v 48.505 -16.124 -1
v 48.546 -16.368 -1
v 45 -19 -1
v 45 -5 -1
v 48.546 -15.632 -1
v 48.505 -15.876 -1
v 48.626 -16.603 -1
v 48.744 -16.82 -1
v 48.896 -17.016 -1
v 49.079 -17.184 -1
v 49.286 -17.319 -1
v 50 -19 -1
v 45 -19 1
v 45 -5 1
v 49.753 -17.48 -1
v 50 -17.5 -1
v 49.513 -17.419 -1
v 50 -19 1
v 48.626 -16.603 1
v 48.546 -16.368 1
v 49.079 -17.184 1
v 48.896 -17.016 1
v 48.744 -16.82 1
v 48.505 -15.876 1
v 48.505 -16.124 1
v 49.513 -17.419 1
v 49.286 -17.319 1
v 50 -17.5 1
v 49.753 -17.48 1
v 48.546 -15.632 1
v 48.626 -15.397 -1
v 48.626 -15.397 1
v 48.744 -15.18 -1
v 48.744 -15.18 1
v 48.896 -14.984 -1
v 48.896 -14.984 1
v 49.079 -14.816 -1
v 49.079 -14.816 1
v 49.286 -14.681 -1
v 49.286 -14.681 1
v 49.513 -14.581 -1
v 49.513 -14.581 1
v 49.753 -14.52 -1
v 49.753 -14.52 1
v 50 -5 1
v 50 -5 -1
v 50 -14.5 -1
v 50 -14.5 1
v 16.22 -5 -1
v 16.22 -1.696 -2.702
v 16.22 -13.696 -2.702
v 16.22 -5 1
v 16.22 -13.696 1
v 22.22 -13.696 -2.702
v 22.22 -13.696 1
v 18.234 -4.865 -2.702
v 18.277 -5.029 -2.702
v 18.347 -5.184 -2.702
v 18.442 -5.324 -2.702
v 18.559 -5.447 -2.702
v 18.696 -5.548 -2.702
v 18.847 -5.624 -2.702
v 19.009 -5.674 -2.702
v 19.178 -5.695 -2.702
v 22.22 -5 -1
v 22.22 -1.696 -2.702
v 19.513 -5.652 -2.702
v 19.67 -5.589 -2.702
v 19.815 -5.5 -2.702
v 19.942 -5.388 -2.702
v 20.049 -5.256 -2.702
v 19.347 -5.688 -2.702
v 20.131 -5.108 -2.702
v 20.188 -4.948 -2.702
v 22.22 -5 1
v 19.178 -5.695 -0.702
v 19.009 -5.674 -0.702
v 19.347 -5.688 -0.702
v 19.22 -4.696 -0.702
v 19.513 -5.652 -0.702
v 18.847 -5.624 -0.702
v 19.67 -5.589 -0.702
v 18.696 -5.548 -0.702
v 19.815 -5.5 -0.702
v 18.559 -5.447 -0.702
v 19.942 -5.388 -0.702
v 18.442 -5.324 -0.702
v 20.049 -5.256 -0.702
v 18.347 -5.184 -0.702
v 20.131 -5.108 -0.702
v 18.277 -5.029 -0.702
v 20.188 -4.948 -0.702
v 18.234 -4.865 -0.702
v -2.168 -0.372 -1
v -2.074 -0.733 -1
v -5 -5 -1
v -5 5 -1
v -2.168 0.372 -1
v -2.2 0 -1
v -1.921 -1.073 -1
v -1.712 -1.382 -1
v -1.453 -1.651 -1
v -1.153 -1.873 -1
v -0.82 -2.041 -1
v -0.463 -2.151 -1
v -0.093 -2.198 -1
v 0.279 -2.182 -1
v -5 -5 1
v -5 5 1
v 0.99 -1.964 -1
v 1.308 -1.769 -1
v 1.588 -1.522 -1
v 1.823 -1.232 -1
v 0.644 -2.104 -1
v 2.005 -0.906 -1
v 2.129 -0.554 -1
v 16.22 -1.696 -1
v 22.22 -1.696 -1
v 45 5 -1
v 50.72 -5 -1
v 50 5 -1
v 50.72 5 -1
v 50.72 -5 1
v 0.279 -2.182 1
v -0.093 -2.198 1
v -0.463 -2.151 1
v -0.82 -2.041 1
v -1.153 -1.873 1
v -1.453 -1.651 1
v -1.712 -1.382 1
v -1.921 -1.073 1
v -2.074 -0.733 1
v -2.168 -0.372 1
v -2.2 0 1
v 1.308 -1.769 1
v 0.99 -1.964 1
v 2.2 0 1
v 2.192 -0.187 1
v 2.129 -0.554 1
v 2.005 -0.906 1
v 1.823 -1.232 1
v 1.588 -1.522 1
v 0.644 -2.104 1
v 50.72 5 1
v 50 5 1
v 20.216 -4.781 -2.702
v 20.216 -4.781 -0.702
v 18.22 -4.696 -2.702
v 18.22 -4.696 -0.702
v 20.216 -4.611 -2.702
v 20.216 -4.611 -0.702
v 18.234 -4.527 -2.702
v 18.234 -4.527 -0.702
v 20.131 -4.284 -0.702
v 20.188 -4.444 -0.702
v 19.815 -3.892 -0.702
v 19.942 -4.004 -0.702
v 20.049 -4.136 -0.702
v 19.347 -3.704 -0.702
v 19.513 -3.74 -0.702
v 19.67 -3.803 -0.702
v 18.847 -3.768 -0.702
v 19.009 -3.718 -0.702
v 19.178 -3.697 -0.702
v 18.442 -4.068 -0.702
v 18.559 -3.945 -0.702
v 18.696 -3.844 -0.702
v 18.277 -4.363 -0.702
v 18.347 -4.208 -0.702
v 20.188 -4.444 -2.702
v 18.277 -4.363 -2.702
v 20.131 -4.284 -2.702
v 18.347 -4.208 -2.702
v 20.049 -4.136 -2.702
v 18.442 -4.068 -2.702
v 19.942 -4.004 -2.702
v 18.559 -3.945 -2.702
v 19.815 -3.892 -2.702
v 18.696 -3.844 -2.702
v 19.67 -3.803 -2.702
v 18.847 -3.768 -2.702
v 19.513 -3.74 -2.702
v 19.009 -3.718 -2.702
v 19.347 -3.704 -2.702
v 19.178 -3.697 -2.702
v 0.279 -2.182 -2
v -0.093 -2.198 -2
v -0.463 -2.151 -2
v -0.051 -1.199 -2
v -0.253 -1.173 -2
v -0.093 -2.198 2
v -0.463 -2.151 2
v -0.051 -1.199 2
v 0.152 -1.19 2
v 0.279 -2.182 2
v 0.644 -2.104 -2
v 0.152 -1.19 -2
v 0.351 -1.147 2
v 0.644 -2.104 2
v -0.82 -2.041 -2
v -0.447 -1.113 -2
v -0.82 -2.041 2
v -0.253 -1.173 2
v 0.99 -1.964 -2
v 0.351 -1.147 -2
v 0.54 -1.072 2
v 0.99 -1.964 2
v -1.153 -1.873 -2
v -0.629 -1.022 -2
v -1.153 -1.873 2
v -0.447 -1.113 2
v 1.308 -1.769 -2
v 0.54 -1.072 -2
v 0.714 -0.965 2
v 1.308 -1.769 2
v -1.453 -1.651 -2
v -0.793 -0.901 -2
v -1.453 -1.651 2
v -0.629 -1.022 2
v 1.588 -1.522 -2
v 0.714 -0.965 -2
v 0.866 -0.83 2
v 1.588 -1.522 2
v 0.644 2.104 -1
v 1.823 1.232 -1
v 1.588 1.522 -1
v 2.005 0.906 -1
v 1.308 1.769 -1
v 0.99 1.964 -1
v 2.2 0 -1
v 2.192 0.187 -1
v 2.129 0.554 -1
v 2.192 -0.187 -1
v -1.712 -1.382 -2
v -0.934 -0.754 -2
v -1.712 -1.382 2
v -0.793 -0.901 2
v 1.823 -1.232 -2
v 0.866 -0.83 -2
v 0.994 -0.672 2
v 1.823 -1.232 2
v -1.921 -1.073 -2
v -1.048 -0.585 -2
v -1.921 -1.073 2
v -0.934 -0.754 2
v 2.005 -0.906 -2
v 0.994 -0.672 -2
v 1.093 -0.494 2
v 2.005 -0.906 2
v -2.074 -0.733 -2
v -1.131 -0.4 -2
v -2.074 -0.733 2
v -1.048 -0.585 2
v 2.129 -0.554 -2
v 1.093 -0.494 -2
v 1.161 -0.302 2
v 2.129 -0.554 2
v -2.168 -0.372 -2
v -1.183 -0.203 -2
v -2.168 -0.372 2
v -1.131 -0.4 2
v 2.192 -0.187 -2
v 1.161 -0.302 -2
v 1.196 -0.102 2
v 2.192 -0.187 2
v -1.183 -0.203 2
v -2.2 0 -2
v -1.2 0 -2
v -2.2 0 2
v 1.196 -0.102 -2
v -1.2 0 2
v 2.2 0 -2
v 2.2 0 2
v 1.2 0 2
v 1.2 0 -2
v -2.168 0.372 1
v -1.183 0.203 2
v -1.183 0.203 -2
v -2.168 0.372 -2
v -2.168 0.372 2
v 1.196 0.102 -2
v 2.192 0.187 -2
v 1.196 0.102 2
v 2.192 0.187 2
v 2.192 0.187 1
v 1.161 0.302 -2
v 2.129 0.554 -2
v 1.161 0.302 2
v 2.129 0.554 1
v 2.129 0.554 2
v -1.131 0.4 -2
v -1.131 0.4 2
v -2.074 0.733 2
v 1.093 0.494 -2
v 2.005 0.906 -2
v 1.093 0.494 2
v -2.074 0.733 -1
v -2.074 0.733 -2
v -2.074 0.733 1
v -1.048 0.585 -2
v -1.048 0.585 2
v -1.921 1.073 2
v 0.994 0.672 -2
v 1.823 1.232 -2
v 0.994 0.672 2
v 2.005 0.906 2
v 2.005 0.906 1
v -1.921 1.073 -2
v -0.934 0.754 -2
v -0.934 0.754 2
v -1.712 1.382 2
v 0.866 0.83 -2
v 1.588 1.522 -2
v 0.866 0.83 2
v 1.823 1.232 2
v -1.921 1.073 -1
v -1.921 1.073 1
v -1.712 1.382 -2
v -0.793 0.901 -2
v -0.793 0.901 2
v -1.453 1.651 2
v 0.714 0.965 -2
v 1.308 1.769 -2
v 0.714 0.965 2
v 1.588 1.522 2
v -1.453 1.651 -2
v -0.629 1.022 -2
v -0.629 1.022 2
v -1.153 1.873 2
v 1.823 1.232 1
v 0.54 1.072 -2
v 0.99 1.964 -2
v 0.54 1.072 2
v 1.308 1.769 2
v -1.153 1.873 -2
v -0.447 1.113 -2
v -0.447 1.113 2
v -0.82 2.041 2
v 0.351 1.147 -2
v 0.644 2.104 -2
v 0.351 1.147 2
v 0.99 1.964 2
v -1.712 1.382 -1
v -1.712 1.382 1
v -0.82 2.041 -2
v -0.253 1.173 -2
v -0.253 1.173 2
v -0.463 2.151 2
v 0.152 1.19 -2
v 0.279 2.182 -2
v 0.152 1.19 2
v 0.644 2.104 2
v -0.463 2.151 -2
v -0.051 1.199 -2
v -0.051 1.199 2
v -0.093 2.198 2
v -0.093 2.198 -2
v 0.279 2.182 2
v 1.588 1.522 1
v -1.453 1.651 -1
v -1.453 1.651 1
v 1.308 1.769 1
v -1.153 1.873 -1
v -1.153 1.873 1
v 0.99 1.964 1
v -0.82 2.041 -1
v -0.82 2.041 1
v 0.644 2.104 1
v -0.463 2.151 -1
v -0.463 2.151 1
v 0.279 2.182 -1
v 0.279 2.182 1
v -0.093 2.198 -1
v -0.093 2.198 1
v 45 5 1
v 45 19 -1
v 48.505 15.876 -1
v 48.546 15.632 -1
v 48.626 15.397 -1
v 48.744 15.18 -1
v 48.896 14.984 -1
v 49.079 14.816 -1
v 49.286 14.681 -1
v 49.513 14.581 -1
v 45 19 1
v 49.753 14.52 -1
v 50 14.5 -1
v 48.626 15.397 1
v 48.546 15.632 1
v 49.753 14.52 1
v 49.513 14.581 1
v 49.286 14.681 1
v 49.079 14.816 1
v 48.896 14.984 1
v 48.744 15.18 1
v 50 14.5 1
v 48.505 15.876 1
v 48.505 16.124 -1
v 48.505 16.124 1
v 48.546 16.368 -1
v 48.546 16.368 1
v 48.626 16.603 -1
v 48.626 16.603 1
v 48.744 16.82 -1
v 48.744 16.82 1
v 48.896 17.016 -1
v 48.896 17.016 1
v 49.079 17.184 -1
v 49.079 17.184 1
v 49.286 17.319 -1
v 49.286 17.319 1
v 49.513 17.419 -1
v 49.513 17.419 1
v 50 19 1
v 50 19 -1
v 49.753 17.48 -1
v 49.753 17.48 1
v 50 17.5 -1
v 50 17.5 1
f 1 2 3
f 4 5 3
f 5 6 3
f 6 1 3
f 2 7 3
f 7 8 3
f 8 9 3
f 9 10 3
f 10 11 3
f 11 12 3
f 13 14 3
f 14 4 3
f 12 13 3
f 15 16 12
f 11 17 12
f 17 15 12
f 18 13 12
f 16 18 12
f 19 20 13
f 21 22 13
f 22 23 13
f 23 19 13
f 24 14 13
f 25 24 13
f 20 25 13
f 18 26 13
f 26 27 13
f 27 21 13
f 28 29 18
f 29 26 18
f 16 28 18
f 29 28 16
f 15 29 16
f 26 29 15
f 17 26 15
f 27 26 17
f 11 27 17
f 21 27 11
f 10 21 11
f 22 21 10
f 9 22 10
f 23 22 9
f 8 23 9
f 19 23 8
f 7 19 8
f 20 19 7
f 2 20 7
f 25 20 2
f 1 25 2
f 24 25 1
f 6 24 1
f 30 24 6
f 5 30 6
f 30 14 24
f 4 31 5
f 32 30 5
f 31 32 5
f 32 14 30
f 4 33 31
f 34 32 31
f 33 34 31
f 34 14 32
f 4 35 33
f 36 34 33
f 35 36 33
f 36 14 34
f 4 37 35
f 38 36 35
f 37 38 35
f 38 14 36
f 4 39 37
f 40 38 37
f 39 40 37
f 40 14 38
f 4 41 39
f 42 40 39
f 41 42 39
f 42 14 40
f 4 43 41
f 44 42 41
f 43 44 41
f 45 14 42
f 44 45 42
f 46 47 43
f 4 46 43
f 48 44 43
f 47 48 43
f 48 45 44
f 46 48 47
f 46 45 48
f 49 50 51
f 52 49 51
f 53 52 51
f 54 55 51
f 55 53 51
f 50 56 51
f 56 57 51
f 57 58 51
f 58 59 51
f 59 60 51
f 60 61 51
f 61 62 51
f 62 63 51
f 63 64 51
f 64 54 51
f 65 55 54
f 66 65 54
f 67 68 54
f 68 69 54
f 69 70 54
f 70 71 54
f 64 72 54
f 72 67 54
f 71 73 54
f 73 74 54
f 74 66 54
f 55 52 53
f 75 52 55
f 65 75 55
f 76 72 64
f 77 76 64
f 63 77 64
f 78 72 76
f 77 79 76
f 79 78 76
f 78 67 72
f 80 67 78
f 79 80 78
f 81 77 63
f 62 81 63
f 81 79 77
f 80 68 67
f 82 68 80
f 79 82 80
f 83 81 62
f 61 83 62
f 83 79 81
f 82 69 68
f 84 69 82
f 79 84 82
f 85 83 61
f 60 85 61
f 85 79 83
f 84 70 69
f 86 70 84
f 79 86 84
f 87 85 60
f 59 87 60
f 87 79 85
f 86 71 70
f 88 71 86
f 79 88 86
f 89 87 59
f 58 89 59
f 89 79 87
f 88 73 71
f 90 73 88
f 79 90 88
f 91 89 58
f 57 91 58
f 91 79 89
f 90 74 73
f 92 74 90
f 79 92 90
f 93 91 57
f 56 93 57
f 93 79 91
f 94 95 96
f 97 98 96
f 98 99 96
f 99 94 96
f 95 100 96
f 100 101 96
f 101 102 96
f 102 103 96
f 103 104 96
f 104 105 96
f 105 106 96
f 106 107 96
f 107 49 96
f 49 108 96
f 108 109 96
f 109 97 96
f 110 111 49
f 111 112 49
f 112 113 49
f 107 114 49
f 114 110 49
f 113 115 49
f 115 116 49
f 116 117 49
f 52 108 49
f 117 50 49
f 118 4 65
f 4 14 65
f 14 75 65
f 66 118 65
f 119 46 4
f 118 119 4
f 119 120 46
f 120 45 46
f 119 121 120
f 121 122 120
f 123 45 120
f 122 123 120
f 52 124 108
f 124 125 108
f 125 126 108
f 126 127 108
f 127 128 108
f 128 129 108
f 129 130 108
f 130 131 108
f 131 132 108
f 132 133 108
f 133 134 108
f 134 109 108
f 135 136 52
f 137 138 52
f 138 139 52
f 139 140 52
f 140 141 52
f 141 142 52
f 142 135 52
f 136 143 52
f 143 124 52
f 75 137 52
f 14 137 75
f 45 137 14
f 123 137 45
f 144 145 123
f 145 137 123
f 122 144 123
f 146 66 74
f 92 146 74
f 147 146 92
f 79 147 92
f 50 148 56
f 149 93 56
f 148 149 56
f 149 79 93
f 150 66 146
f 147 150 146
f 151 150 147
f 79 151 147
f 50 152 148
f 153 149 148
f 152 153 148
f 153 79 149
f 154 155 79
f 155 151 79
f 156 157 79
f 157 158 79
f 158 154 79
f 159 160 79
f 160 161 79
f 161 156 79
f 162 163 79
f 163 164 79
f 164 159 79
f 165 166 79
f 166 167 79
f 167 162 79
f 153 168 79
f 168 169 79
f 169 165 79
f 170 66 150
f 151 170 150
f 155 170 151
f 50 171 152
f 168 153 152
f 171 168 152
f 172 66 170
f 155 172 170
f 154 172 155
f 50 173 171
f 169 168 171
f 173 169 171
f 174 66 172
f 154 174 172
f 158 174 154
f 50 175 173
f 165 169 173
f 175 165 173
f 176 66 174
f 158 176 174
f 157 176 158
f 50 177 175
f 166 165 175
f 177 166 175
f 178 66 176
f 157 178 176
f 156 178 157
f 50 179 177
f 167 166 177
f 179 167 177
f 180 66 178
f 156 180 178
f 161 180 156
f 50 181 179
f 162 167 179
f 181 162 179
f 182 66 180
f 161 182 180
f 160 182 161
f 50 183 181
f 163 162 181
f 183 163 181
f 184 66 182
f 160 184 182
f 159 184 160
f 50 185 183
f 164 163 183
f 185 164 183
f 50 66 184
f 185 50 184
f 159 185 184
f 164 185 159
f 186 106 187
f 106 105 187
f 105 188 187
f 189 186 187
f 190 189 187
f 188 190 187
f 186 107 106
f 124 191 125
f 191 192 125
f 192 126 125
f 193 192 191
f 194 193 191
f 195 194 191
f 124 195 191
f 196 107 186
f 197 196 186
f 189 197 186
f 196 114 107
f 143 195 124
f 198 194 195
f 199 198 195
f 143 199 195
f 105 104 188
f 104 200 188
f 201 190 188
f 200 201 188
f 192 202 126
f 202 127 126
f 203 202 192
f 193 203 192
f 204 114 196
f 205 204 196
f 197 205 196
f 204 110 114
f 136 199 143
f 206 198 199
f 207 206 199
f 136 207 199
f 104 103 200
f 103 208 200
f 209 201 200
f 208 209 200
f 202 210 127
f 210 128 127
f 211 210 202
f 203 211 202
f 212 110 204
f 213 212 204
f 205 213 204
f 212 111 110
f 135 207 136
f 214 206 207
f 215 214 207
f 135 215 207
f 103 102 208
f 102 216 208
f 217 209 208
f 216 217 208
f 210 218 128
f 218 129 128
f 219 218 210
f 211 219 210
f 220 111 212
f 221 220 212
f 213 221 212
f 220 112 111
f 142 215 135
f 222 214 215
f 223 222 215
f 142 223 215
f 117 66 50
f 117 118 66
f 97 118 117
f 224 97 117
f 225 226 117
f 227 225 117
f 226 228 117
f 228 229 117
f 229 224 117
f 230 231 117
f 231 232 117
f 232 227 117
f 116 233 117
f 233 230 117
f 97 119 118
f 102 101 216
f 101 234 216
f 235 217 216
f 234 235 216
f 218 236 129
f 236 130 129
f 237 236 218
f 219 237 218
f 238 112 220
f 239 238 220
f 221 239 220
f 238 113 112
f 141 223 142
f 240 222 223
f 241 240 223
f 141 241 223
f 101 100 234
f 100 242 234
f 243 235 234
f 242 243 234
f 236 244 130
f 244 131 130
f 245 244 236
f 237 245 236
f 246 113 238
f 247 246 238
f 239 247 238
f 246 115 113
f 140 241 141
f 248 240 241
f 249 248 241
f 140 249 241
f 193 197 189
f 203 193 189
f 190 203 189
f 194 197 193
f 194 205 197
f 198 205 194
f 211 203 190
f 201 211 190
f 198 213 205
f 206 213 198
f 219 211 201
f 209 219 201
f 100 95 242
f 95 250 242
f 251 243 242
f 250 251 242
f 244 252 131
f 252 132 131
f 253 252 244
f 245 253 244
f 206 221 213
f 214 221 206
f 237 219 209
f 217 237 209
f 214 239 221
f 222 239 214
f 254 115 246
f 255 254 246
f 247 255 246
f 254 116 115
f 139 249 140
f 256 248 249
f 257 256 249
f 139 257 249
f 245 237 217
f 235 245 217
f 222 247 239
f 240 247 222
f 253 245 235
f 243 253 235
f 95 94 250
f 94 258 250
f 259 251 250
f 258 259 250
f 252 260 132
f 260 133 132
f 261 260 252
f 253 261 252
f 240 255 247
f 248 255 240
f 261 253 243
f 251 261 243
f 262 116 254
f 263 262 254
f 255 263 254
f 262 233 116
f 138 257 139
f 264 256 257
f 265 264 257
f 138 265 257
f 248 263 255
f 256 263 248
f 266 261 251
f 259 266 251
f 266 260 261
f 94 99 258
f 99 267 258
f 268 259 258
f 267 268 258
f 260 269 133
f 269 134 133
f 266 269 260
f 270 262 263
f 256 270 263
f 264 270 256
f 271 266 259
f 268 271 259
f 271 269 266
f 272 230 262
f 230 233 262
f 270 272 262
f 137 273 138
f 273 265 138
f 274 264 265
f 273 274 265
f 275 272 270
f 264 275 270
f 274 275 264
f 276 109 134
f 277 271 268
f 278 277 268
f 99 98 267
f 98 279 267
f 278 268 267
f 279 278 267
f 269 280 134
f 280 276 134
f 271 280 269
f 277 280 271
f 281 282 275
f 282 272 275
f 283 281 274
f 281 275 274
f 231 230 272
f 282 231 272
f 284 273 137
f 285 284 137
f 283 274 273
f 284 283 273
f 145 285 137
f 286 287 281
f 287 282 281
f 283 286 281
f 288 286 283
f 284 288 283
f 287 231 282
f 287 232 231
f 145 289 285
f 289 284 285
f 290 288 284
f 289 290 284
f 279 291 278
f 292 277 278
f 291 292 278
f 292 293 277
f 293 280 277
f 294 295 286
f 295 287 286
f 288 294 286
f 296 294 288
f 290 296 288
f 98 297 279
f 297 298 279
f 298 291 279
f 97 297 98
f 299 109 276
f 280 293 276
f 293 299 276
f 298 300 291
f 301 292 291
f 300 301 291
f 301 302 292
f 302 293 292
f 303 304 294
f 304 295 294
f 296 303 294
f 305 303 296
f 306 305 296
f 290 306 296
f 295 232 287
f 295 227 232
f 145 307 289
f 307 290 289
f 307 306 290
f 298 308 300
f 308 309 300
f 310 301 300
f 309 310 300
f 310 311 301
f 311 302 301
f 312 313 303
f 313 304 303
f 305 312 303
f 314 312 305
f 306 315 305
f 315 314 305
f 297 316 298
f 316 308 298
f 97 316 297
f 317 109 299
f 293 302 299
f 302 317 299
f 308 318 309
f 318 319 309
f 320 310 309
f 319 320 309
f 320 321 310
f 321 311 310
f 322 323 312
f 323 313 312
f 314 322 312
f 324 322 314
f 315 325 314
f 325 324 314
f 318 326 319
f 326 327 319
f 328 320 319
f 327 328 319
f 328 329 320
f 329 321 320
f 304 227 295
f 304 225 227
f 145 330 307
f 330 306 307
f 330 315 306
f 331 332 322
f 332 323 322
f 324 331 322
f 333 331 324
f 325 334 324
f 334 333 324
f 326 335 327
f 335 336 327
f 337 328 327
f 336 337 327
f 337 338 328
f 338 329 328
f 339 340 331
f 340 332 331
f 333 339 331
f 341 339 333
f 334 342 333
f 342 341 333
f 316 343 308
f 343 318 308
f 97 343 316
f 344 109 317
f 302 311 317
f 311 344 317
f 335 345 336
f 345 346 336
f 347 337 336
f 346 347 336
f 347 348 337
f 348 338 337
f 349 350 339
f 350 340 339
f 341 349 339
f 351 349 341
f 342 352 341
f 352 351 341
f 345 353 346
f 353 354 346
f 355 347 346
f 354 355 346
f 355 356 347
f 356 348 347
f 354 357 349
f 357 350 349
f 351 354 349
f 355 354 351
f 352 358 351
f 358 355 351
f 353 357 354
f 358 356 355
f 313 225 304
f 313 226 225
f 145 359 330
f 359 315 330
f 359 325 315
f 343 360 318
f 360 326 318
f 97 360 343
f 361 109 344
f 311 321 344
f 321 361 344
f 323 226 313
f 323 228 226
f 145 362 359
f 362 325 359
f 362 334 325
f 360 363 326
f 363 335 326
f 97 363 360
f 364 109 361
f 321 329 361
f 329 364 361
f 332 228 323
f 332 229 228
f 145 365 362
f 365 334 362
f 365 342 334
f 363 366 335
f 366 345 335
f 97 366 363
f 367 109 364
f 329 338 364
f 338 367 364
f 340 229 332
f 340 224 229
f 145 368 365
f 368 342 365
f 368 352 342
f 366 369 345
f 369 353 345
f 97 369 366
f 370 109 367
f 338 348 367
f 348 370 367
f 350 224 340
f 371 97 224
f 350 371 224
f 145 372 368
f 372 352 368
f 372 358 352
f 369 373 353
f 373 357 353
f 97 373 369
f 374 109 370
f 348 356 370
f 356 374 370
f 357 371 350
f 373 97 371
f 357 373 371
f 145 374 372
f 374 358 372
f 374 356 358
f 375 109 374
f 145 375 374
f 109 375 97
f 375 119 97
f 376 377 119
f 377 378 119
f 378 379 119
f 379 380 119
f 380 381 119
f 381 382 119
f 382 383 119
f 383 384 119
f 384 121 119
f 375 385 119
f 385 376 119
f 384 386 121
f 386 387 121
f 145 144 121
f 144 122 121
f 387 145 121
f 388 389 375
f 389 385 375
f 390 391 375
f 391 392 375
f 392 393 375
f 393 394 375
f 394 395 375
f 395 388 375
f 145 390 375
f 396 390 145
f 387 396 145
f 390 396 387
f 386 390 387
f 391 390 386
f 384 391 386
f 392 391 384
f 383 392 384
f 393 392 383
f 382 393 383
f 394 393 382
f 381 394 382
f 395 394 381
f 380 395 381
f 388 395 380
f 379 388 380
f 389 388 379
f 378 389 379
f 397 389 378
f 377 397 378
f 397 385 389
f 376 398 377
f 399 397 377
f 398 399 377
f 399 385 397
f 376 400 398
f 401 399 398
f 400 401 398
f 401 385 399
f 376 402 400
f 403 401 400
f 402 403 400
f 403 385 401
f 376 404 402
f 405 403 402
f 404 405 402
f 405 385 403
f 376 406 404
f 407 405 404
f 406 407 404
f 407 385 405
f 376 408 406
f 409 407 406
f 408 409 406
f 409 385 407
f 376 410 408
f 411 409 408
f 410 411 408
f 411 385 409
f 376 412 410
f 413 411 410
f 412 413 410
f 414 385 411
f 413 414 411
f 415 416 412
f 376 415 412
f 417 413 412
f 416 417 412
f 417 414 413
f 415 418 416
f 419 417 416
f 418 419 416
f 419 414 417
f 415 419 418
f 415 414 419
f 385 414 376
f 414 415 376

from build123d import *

# Parameters (mm, degrees)
SKETCH1_R                = 0.254
SKETCH1_R_2              = 1.2
BOSS_EXTRUDE1_DEPTH      = 1
SKETCH2_R                = 2.2
SKETCH2_R_2              = 1.2
BOSS_EXTRUDE2_DEPTH      = 2
BOSS_EXTRUDE3_DEPTH      = 1.7018
BOSS_EXTRUDE3_DEPTH_BACK = 2
SKETCH5_R                = 1
CUT_EXTRUDE3_DEPTH       = 2


with BuildPart() as part:
    # Sketch1 → Boss-Extrude1 (new, symmetric)
    with BuildSketch(Plane.XY):
        with BuildLine():
            Line((-5, 5), (-5, -5))
            Line((-5, -5), (45, -5))
            Line((45, -5), (45, -19))
            Line((45, -19), (50, -19))
            Line((50, -19), (50, -17.5))
            ThreePointArc((50, -17.5), (48.5, -16), (50, -14.5))
            Line((50, -14.5), (50, -5))
            Line((50, -5), (50.72, -5))
            Line((50.72, -5), (50.72, 0))
            Line((50.72, 0), (50.72, 5))
            Line((50.72, 5), (50, 5))
            Line((50, 5), (50, 14.5))
            ThreePointArc((50, 14.5), (48.5, 16), (50, 17.5))
            Line((50, 17.5), (50, 19))
            Line((50, 19), (45, 19))
            Line((45, 19), (45, 5))
            Line((45, 5), (-5, 5))
        make_face()
        with Locations((19.22, -2.25)):
            Circle(SKETCH1_R, mode=Mode.SUBTRACT)
        Circle(SKETCH1_R_2, mode=Mode.SUBTRACT)
    extrude(amount=BOSS_EXTRUDE1_DEPTH, both=True)

    # Sketch2 → Boss-Extrude2 (add, symmetric)
    with BuildSketch(Plane.XY):
        Circle(SKETCH2_R)
        Circle(SKETCH2_R_2, mode=Mode.SUBTRACT)
    extrude(amount=BOSS_EXTRUDE2_DEPTH, both=True)

    # Sketch3 → Boss-Extrude3 (add, two sides: drawn at the far end of the back side and taken through both)
    with BuildSketch(Plane(origin=(0, 0, -1), x_dir=(-1, 0, 0), z_dir=(0, 0, -1)).offset(-BOSS_EXTRUDE3_DEPTH_BACK)):
        Polygon((-19.22, -1.696), (-22.22, -1.696), (-22.22, -13.696), (-16.22, -13.696), (-16.22, -12.696), (-16.22, -11.696), (-16.22, -9.062), (-16.22, -1.696), align=None)
    extrude(amount=BOSS_EXTRUDE3_DEPTH + BOSS_EXTRUDE3_DEPTH_BACK)

    # Sketch5 → Cut-Extrude3 (cut)
    with BuildSketch(Plane(origin=(0, 0, -2.7018), x_dir=(-1, 0, 0), z_dir=(0, 0, -1))):
        with Locations((-19.22, -4.696)):
            Circle(SKETCH5_R)
    extrude(amount=-CUT_EXTRUDE3_DEPTH, mode=Mode.SUBTRACT)


solid = part.part
